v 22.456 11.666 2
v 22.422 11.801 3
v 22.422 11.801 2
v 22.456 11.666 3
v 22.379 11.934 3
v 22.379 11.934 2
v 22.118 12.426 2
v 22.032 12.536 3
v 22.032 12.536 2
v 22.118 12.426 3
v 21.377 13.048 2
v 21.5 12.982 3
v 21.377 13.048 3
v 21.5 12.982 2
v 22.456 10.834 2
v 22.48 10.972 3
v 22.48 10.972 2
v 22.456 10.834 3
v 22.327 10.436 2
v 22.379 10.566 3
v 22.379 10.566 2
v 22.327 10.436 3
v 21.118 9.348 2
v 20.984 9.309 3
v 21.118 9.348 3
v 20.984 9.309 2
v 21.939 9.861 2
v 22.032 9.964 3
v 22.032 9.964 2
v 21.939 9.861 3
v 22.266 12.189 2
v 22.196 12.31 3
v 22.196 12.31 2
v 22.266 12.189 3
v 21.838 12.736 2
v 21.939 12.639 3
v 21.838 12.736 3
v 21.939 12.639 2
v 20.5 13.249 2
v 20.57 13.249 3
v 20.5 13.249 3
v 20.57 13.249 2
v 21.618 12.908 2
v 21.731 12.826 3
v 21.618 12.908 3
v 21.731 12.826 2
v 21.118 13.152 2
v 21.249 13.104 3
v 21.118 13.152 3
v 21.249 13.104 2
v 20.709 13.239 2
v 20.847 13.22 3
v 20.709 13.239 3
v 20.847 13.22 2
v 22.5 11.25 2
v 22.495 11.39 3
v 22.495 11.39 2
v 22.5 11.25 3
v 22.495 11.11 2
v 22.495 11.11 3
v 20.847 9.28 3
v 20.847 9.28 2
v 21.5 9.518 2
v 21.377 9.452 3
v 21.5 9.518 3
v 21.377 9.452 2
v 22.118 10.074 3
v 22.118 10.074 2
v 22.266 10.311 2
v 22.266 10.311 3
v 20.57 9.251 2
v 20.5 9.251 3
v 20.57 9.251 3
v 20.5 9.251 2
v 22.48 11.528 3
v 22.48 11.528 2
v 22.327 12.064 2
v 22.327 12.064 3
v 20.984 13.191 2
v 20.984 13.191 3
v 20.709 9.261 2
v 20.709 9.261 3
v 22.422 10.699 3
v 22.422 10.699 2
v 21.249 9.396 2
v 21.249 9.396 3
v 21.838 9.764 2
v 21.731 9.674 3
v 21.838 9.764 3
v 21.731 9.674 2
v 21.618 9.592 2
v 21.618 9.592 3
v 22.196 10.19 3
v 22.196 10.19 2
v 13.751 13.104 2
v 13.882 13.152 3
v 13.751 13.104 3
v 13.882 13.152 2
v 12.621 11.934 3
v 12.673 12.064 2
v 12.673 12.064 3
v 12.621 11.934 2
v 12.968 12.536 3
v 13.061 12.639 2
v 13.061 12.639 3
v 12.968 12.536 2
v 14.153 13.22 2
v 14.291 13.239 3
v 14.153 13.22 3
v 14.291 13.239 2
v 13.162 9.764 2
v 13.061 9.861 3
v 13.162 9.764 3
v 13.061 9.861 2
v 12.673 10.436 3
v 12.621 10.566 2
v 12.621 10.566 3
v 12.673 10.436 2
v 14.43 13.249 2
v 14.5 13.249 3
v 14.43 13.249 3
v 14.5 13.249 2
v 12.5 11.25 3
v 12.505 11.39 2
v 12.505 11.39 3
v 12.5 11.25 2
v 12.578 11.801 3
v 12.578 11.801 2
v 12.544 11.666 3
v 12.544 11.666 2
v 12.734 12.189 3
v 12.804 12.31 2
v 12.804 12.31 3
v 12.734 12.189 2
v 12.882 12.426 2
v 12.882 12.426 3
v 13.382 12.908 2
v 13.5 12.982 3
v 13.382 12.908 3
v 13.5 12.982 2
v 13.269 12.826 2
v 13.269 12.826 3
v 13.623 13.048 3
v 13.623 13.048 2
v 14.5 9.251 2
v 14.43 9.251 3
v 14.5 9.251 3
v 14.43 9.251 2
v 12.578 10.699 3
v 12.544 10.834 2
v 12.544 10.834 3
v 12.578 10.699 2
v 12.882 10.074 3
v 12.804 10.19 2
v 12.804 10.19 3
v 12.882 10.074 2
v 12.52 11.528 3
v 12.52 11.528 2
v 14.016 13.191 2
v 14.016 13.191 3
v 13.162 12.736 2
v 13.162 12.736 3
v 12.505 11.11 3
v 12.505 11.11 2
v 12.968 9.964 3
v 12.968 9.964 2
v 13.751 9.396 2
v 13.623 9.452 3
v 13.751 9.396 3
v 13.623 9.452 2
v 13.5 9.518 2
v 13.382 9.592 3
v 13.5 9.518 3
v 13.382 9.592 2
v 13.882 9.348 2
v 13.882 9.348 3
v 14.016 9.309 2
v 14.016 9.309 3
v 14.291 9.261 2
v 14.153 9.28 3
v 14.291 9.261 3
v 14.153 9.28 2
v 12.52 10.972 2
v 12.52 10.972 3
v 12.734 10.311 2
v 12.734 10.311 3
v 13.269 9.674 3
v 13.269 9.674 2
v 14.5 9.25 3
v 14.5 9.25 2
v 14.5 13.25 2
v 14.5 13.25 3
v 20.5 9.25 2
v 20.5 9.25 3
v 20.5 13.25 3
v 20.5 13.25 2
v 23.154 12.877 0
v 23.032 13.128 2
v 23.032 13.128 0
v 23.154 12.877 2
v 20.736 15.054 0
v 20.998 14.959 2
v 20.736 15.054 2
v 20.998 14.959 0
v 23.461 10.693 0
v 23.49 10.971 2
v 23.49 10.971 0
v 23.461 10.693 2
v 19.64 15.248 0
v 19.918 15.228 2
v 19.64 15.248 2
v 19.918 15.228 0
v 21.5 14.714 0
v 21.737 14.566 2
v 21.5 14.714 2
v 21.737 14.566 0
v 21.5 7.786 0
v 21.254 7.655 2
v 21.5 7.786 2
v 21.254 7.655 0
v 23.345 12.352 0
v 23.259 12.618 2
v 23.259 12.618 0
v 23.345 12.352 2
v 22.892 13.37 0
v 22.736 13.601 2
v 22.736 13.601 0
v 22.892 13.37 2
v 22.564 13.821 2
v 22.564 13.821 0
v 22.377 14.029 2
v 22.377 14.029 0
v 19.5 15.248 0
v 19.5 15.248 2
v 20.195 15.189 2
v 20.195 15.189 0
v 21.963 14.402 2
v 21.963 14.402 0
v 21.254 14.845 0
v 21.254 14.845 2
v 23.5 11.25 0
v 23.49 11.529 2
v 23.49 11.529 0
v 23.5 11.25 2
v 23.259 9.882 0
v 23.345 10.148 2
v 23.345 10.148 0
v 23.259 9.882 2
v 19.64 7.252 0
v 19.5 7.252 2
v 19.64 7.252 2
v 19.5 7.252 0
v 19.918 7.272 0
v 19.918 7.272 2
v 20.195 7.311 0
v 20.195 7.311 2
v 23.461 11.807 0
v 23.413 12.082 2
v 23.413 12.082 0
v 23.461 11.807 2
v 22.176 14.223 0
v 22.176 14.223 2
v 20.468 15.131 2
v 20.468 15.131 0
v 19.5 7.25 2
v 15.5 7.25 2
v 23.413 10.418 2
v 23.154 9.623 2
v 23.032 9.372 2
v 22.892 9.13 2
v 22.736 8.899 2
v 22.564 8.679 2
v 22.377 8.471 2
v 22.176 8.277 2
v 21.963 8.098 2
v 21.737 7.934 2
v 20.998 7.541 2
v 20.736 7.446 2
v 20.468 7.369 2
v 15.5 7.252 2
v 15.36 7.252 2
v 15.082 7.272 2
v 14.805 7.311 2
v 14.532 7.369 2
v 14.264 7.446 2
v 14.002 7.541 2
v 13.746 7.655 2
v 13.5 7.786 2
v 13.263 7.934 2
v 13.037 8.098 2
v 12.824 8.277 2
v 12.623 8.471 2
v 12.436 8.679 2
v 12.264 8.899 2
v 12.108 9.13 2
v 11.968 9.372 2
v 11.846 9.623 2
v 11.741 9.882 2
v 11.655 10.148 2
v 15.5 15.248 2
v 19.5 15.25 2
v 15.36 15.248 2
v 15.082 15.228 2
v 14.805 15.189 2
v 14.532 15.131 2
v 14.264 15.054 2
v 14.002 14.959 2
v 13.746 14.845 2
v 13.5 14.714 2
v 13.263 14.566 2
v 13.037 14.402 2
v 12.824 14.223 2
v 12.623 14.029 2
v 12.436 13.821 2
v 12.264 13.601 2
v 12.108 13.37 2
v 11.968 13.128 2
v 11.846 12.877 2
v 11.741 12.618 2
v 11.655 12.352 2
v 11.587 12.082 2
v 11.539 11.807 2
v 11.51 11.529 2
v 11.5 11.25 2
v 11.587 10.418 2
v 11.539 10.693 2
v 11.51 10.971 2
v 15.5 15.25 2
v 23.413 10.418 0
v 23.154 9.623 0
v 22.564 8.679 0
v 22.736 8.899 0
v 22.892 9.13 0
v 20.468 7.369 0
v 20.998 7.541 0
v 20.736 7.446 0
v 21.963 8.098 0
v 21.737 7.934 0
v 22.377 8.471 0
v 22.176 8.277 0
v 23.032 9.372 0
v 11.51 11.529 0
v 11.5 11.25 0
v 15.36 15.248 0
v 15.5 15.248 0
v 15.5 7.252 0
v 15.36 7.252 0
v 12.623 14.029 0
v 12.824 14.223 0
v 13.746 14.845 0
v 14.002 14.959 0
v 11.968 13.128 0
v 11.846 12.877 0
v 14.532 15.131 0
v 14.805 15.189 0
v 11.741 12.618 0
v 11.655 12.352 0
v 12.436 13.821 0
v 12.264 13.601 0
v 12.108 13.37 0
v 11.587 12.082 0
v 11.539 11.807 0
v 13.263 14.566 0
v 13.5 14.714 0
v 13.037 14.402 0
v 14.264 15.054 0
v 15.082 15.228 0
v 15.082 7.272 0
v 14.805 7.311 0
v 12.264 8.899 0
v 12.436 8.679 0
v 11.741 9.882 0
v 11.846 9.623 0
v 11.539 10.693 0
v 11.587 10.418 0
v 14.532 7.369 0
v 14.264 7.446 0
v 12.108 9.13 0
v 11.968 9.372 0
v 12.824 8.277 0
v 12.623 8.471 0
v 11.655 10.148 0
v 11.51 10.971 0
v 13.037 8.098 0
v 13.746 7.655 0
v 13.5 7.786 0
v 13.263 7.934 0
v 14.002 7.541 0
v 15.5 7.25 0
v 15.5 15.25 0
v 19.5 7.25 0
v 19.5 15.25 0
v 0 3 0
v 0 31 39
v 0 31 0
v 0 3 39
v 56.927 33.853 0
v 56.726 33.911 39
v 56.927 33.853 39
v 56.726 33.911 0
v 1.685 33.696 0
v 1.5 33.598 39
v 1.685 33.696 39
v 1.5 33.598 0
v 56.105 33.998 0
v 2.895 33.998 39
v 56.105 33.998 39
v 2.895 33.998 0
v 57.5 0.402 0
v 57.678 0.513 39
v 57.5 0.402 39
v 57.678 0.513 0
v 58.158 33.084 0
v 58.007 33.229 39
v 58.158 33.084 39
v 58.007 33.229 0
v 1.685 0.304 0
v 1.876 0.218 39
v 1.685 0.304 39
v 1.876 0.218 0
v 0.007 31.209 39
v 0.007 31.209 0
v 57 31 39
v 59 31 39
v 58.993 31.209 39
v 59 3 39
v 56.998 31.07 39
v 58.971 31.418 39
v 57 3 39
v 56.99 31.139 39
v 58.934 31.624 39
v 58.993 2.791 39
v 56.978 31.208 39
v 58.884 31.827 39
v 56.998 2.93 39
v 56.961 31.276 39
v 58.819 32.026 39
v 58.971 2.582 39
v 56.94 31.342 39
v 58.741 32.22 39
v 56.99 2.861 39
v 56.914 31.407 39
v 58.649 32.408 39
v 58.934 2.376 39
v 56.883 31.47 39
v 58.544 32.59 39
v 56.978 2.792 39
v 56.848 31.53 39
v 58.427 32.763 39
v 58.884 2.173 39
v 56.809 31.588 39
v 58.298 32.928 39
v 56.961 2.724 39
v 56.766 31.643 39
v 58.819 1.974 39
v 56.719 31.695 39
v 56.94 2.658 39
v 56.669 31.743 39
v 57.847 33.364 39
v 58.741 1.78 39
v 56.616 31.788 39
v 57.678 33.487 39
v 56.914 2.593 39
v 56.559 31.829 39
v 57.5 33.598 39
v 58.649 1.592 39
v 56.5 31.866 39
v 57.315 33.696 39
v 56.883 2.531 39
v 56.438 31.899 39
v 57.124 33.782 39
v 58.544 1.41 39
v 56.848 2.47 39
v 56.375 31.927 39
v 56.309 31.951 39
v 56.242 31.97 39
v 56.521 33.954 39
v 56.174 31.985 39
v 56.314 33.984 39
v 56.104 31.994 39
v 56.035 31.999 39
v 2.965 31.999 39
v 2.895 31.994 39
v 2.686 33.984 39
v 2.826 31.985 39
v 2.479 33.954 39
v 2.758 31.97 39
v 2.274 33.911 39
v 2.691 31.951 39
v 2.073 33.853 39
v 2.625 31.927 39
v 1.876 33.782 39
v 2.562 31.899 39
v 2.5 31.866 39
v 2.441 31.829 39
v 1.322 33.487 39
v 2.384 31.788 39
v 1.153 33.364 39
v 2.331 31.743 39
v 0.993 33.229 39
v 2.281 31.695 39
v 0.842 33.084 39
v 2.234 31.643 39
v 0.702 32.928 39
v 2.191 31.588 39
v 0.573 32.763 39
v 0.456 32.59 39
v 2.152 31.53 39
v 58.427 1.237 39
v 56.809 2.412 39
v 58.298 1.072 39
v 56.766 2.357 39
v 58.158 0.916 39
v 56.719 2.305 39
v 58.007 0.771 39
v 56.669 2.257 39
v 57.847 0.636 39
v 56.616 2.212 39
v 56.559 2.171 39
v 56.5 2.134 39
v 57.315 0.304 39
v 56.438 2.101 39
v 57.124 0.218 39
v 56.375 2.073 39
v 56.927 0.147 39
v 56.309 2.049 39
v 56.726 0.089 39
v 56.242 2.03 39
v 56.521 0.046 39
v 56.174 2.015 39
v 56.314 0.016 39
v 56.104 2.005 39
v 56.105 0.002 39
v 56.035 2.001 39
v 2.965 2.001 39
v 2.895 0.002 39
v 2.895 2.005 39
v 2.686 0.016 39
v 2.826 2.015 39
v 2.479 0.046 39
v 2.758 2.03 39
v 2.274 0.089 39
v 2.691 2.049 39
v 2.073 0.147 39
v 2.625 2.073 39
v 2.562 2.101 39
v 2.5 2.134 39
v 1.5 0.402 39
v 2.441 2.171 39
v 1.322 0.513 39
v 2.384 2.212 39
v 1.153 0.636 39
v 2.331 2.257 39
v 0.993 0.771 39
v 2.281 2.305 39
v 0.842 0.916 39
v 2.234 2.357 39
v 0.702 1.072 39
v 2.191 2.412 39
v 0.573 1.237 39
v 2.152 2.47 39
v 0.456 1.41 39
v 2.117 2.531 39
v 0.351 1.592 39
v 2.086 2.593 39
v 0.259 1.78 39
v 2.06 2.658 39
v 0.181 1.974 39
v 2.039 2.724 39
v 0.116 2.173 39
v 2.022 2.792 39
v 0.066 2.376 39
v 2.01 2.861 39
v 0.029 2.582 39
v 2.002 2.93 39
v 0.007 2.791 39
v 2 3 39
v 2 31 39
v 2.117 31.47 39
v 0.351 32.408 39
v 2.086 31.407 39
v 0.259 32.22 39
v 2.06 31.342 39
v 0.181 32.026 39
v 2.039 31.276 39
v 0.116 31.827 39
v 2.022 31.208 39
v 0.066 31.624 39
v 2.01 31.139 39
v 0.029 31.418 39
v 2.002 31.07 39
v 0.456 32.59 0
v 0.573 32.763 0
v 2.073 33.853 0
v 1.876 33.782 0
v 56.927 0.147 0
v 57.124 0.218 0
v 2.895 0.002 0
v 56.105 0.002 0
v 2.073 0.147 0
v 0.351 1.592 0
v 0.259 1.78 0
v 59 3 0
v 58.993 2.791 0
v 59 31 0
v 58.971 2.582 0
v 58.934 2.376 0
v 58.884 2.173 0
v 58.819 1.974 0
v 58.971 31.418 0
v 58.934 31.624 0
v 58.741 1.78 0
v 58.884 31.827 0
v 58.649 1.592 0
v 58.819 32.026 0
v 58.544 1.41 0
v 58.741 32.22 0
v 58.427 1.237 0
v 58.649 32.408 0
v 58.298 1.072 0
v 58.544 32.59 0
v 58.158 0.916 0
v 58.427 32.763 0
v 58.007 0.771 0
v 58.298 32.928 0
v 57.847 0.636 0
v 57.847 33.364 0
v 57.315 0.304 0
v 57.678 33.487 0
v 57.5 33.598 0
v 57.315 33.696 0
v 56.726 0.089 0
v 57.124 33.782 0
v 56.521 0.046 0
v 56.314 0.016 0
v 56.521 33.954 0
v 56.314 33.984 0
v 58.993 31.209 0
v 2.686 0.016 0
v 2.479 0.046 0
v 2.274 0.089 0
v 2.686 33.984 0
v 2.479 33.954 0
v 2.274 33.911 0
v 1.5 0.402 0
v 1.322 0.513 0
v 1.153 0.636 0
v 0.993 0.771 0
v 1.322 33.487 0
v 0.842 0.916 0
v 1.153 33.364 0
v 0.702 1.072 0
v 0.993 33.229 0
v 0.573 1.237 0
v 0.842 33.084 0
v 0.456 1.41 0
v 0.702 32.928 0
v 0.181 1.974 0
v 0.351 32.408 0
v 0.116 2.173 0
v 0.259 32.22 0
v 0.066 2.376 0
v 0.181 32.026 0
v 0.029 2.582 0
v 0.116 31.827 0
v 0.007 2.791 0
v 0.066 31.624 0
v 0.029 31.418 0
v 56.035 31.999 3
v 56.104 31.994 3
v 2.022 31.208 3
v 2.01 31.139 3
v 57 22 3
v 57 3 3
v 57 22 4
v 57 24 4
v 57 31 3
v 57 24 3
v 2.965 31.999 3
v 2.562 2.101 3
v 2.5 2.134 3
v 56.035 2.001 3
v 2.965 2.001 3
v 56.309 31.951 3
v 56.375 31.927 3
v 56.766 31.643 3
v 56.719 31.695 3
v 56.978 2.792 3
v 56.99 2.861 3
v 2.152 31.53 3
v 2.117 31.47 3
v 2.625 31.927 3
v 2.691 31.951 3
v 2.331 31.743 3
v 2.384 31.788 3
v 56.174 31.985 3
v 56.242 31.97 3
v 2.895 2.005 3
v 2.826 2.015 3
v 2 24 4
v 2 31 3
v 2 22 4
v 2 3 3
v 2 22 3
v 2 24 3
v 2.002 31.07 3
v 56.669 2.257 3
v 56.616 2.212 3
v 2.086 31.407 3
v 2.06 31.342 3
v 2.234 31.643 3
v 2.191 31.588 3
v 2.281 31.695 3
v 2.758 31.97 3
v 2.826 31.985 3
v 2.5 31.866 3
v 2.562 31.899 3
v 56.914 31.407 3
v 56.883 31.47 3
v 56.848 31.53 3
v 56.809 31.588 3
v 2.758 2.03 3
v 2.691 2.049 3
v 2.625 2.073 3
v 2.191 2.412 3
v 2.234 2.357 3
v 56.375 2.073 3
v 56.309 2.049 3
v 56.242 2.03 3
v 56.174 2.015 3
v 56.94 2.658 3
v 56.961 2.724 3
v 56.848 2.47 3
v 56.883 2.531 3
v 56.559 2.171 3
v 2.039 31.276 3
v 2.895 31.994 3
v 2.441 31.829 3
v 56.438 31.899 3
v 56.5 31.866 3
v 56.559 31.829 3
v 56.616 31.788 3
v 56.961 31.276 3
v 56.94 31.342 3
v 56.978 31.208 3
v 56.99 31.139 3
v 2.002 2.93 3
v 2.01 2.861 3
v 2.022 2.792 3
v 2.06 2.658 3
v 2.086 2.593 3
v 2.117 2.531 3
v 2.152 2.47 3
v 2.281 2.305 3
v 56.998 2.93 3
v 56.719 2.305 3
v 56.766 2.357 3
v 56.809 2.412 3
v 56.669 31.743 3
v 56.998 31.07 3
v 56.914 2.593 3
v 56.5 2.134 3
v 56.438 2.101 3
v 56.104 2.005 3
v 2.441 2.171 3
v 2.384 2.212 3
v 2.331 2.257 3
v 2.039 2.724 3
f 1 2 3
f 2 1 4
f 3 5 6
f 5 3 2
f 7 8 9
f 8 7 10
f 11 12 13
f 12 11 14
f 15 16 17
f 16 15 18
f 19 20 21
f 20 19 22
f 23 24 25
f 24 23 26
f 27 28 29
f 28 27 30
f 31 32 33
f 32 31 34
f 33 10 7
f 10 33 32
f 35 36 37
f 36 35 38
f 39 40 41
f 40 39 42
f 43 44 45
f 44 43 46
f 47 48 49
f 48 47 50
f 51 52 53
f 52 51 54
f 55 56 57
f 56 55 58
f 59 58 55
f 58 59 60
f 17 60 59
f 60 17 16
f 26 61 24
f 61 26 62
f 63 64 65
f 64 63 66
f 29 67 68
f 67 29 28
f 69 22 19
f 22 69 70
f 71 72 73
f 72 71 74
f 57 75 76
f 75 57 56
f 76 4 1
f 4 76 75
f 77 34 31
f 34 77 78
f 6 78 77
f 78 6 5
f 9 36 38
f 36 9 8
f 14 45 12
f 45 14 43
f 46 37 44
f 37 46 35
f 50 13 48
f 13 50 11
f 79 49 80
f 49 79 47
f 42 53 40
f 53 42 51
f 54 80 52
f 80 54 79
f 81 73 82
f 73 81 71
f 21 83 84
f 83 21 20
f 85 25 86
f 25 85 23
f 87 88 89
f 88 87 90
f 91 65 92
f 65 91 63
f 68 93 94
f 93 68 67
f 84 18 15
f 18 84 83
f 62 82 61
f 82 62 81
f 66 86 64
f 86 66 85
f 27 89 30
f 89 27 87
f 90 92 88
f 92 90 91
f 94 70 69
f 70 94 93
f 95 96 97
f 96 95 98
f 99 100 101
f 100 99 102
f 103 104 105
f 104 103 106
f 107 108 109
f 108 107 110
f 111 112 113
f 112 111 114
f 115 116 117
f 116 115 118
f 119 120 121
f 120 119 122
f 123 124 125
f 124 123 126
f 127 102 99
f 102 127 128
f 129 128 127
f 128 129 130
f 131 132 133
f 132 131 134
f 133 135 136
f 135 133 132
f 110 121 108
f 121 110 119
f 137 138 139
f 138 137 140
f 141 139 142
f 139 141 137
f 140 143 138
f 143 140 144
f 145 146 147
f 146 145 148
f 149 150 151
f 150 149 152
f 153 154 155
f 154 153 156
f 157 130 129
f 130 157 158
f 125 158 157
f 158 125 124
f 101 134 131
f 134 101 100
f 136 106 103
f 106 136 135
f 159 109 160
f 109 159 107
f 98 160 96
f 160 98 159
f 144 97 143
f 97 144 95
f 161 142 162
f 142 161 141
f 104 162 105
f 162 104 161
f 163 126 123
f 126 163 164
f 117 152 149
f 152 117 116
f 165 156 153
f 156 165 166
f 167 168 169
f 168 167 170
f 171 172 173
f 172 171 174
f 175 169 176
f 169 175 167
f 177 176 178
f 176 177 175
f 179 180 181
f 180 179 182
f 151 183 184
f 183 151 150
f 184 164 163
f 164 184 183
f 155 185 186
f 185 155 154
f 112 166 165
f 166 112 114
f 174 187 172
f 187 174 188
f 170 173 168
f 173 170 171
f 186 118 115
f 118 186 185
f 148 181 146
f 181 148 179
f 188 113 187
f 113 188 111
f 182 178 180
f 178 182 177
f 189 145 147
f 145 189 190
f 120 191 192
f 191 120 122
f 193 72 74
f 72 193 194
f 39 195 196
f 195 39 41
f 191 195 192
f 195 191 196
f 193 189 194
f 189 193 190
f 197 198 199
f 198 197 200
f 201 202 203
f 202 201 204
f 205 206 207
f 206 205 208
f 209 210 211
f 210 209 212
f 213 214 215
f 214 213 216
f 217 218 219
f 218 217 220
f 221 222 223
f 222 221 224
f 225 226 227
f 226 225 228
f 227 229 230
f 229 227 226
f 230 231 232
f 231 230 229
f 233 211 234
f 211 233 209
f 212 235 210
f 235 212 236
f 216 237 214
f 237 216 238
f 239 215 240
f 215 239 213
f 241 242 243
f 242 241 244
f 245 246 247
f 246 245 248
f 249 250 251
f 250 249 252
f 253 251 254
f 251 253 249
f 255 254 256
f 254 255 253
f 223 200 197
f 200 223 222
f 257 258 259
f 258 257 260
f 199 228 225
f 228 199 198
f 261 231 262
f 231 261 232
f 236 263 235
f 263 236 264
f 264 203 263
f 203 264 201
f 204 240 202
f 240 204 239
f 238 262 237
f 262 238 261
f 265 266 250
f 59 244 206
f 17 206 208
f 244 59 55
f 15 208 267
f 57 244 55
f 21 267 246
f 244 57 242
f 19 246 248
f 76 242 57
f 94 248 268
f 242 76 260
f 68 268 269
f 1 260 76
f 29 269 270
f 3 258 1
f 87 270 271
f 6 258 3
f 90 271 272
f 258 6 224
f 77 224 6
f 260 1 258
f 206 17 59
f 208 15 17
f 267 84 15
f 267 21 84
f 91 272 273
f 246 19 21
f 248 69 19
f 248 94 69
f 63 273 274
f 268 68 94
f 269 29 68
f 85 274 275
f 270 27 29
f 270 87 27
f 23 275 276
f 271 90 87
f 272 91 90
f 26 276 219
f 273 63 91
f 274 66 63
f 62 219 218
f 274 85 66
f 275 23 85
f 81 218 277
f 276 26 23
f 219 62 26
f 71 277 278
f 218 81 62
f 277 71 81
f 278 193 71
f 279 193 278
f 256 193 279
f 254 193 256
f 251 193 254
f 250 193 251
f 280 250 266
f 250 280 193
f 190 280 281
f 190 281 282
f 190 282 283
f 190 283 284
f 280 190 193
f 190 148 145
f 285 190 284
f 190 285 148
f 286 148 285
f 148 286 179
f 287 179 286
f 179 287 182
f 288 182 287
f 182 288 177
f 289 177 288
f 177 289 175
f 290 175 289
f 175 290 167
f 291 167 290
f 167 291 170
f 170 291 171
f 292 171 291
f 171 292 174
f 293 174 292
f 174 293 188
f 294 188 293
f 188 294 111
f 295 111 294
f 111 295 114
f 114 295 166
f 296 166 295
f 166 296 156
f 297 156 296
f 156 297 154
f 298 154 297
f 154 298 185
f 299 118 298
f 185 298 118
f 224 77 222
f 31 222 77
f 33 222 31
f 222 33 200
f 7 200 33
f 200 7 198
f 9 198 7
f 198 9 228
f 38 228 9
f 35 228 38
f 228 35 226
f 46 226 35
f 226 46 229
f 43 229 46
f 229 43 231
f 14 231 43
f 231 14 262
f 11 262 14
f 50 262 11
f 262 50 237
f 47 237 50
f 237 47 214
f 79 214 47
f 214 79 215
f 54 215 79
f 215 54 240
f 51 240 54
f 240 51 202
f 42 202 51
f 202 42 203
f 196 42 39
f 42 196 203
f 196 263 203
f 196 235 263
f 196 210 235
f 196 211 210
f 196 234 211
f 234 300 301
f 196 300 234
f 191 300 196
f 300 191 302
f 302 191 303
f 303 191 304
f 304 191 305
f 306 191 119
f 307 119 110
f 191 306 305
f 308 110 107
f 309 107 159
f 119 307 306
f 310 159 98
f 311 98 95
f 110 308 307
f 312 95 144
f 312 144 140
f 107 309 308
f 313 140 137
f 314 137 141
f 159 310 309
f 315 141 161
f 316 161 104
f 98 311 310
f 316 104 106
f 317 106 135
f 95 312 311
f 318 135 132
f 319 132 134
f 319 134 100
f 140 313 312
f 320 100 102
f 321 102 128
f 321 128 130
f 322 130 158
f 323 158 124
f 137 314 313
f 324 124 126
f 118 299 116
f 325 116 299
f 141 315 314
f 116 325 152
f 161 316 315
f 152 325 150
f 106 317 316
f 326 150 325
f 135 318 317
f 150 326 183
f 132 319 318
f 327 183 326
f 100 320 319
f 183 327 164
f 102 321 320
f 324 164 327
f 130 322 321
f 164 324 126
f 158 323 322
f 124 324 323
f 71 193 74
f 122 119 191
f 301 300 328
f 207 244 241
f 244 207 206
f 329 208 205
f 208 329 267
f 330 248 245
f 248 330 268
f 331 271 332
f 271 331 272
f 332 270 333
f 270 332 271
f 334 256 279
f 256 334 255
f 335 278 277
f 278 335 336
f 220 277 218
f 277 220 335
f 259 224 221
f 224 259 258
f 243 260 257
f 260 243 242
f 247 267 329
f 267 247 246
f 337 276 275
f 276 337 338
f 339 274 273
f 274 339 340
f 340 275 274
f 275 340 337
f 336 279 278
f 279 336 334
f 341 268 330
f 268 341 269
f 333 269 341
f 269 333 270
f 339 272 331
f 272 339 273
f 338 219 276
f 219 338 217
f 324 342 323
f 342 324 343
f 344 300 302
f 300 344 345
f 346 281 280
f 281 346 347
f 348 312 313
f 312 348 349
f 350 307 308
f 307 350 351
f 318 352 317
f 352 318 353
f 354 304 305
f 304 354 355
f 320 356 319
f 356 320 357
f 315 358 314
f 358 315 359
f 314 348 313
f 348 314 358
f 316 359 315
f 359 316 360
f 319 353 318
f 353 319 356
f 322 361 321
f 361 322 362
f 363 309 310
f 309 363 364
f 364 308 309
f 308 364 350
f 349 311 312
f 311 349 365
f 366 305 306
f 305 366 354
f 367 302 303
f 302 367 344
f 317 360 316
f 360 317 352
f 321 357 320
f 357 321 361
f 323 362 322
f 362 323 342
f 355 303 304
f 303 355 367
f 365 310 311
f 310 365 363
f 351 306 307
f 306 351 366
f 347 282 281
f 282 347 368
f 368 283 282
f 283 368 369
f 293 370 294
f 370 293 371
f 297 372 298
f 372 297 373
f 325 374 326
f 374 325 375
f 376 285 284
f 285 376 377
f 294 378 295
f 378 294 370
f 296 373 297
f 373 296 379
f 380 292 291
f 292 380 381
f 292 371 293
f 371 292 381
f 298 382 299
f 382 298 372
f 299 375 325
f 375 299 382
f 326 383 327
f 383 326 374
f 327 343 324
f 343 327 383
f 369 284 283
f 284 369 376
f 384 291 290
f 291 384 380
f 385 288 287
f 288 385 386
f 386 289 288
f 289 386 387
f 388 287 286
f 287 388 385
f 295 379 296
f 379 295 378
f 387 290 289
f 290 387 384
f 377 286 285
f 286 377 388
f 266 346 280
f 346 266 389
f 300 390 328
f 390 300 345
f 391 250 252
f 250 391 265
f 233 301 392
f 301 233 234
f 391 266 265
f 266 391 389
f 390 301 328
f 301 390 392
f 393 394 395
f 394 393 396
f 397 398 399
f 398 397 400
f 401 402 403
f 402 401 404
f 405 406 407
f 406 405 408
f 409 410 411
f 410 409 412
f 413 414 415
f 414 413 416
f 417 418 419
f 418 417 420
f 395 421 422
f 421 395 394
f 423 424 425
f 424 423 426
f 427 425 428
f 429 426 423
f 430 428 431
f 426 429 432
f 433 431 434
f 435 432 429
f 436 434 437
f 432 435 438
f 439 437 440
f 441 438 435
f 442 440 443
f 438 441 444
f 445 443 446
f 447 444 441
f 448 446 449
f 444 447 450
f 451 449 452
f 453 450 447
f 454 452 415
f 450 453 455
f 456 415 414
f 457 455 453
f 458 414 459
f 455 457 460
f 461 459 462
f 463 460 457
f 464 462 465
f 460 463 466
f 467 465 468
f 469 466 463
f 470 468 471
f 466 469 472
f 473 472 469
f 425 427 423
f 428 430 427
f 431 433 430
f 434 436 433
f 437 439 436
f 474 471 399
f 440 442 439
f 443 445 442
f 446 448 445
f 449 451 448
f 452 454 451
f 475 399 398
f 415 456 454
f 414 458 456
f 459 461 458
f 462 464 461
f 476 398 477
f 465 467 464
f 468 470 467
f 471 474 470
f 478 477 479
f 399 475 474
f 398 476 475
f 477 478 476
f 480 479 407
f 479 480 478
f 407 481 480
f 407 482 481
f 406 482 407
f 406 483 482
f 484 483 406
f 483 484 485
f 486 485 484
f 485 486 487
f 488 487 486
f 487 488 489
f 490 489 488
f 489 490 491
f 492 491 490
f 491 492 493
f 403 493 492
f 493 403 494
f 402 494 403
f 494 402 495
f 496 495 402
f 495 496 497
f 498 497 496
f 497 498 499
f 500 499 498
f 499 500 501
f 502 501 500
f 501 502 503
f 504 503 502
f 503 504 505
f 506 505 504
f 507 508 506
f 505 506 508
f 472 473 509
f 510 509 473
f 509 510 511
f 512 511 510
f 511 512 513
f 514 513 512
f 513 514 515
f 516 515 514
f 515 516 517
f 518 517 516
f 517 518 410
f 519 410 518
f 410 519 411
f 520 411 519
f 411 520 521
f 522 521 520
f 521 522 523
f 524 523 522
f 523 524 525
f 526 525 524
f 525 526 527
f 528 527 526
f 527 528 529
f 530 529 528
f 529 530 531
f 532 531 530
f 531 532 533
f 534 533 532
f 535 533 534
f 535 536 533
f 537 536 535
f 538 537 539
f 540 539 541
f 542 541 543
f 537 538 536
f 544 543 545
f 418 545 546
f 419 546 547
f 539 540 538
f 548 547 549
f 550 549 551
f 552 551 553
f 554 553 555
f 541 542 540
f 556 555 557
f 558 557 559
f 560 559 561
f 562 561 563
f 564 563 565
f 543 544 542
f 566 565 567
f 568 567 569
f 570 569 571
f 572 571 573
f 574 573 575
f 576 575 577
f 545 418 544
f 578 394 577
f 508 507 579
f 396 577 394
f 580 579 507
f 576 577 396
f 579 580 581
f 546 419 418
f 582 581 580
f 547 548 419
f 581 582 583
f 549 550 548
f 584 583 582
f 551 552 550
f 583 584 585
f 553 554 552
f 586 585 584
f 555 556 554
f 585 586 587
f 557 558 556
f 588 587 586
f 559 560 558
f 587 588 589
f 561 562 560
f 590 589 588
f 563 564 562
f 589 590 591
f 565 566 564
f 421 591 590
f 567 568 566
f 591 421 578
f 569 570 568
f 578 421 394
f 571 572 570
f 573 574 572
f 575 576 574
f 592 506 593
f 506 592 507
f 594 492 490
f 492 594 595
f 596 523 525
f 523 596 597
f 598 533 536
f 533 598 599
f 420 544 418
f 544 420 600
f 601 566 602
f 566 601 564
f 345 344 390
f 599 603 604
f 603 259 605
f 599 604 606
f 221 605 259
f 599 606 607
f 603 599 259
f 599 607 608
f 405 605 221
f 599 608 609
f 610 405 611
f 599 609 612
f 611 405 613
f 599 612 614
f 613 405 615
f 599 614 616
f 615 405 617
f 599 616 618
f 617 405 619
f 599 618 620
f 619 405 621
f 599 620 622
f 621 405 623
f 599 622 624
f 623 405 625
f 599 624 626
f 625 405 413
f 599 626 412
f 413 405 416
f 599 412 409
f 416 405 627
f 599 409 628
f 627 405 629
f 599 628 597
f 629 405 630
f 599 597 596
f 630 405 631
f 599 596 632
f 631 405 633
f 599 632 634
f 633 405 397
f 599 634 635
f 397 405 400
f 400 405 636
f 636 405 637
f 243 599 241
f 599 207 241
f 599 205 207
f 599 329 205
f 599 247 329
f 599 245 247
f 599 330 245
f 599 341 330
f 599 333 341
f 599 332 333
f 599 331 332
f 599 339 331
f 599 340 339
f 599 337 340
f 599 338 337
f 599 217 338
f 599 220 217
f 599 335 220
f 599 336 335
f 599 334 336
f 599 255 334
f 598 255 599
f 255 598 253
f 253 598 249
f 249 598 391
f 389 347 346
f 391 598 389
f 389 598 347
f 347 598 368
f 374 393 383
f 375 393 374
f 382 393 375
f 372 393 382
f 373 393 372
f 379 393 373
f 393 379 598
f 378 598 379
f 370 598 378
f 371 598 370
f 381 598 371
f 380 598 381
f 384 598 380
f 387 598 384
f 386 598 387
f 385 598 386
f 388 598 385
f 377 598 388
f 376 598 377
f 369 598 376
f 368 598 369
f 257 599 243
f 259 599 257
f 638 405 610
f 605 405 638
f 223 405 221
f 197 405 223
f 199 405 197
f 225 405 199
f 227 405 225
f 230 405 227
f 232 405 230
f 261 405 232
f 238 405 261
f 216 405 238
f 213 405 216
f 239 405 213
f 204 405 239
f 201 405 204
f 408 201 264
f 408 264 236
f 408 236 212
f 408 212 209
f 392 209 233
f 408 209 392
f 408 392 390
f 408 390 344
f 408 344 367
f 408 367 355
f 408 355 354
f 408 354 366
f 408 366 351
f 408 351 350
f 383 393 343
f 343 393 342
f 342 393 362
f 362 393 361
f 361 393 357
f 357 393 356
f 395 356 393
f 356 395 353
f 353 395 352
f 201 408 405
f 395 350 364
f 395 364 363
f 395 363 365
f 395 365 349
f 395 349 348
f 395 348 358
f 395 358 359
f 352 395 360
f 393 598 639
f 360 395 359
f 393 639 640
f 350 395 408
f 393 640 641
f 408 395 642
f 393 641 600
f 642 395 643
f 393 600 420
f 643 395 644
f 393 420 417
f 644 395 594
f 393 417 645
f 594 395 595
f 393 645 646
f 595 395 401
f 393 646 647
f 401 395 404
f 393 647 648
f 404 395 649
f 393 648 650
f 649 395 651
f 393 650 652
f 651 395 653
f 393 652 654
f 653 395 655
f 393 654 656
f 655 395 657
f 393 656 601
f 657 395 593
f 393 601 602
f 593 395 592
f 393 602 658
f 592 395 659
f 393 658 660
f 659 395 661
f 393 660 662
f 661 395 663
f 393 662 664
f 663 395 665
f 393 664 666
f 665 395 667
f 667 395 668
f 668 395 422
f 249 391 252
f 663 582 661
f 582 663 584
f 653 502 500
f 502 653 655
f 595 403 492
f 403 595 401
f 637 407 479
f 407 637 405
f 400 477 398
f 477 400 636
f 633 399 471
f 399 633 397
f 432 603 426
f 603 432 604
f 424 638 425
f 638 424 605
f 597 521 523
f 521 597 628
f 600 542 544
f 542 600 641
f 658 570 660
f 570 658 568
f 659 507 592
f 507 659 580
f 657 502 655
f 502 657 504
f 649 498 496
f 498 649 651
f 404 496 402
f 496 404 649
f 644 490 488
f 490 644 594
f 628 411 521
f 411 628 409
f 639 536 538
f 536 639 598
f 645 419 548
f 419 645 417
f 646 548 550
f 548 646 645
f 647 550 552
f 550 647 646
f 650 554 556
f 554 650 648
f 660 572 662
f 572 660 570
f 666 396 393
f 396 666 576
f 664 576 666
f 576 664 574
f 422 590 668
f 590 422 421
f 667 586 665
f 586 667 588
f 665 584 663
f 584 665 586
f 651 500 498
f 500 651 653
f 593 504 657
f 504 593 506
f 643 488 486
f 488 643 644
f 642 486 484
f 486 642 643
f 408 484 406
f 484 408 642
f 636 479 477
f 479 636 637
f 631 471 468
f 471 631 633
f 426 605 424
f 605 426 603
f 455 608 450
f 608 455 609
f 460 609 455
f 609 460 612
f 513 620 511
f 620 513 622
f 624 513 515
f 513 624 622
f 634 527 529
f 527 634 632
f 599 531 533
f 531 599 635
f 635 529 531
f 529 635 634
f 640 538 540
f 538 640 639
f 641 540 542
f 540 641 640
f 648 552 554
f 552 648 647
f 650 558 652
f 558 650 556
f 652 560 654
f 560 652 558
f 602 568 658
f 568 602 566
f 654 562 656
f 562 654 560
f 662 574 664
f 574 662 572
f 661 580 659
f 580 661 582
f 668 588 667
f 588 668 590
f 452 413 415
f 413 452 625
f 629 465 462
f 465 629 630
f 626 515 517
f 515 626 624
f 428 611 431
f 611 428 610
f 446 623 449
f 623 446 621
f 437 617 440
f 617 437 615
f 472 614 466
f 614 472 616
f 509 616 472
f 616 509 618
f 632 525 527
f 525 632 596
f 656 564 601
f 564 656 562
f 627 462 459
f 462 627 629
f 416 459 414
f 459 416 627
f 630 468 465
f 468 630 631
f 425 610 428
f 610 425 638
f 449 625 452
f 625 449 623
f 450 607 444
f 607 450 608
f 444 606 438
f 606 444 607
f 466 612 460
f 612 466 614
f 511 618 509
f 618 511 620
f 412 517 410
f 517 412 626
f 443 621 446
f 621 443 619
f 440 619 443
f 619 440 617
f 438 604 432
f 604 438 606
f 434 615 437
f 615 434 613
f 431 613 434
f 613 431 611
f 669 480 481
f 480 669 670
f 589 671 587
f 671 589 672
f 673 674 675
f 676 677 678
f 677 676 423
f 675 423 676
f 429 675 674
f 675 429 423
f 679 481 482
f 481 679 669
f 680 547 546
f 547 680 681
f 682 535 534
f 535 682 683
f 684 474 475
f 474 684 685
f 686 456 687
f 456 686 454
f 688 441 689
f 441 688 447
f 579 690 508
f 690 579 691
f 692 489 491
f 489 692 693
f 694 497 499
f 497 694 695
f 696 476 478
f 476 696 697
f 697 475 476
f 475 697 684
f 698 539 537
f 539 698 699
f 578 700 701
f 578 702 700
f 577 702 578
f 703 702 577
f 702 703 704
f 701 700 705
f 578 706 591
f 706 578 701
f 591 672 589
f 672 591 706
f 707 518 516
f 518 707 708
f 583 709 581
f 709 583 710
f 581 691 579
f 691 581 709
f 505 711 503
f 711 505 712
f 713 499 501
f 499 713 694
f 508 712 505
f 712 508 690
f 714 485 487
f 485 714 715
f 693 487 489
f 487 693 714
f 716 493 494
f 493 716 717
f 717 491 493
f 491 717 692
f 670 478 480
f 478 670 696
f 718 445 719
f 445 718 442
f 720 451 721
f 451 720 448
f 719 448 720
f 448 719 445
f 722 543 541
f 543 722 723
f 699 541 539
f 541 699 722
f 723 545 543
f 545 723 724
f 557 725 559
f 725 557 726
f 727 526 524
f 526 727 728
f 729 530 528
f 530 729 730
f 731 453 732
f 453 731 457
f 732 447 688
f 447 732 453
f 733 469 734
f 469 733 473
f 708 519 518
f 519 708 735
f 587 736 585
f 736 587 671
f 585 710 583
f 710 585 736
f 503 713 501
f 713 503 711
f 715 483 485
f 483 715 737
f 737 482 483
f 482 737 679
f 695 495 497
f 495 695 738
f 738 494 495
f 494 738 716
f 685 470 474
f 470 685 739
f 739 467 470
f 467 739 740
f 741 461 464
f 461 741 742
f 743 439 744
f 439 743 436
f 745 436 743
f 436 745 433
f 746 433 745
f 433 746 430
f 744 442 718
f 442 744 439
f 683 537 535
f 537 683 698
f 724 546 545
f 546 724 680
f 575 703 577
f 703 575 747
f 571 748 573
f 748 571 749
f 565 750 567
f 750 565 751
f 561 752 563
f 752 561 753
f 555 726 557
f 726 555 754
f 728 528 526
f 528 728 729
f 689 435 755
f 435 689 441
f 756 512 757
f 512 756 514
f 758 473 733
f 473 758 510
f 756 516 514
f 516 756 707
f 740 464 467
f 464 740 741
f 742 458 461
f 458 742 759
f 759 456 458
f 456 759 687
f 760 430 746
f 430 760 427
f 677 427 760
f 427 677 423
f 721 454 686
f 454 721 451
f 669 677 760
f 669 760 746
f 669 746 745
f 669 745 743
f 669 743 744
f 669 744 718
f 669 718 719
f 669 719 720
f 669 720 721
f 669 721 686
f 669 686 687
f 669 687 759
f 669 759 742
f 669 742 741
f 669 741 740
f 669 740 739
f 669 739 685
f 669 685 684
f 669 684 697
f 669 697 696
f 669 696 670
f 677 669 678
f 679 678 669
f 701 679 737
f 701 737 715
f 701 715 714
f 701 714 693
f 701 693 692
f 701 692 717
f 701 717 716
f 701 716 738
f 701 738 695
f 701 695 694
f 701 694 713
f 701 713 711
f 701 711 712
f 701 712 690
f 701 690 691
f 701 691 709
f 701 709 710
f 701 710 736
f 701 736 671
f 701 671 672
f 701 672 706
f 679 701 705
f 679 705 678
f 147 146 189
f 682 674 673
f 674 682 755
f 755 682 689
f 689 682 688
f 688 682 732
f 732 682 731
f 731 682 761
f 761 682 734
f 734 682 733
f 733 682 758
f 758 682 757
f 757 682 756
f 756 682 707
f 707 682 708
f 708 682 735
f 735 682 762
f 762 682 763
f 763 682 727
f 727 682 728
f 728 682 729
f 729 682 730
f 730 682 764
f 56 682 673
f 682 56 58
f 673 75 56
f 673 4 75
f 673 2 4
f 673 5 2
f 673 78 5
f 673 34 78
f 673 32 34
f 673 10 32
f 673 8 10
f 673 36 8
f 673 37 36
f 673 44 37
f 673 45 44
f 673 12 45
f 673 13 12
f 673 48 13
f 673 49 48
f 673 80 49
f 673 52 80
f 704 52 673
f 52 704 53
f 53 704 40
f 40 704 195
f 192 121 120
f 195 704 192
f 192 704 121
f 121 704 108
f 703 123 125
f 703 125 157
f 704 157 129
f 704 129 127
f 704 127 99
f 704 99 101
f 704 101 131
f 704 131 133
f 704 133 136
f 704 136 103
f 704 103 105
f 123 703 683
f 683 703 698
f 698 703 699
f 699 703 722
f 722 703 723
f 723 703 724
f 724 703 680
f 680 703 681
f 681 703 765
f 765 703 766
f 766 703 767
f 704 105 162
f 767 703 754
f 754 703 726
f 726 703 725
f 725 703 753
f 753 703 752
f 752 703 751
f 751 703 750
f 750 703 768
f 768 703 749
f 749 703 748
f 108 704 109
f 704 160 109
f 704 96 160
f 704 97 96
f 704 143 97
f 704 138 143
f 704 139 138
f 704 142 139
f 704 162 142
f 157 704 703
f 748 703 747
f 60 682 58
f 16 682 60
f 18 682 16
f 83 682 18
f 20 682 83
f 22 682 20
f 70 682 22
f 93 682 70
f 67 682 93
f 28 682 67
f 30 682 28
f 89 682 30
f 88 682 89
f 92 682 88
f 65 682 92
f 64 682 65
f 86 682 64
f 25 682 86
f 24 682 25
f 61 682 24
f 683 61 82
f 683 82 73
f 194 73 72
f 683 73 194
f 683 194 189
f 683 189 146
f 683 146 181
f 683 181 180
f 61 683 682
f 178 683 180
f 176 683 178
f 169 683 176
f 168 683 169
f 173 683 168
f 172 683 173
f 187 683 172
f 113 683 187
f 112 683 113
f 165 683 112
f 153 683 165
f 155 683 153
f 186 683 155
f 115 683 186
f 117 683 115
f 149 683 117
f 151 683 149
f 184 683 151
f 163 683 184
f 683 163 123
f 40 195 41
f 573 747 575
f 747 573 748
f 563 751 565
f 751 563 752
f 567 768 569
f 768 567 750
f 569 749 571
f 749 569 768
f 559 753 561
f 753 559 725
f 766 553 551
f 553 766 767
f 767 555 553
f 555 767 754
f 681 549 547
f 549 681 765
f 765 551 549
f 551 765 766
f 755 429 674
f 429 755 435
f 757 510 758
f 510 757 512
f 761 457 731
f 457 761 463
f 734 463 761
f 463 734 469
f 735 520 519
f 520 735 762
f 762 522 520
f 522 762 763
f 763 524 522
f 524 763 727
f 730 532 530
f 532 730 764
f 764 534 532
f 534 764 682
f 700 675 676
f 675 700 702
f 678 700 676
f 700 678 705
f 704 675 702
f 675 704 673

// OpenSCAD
// Simple Cover for the Iridium Mini Beacon with USB opening

$fn=90; // fragments
wall = 2.0; // wall thickness
end_wall = 3.0; // end wall thickness
internal_width = 55.0; // internal width (X) of the cover
internal_depth = 30.0; // internal depth (Y) of the cover
internal_height = 35.0; // internal height (Z) of the cover
lid_insert = 1.0; // extra height for the lid insert

battery_support_height = 1.0; // Height (Z) of the battery support above the floor
battery_support_depth = 2.0; // Depth (Y) of the battery support
battery_support_offset = 5.0; // Y offset of the battery support

internal_corner_radius = 1.0; // radius of the internal corner cylinder

usb_r = 2.0; // radius of the opening for the USB connector
usb_width = 10.0; // total width of the opening for the USB
usb_height = 1.0; // thickness of the opening for the USB connector
usb_recess_r = 4.0; // radius of the recess for the USB connector body
usb_recess_width = 12.0; // total width of the recess for the USB connector body
usb_x_offset = -12.0; // X offset of the USB connector
usb_y_offset = 5.75; // y offset of the USB connector

height = internal_height + end_wall + lid_insert; // cover external height (Z)
width = internal_width + (2 * wall); // cover external width (X)
depth = internal_depth + (2 * wall); // cover external depth (Y)

external_corner_radius = internal_corner_radius + wall; // external corner radius

module cover()
{
    translate([external_corner_radius, external_corner_radius, 0])
        minkowski() {
            cube([(width - (2 * external_corner_radius)), (depth - (2 * external_corner_radius)), (height / 2)]);
            cylinder(h=(height / 2), r=external_corner_radius);
        }
}

module void()
// Void will be higher than required to avoid zero thickness skin across opening
{
    translate([external_corner_radius, external_corner_radius, end_wall])
        minkowski() {
            cube([(internal_width - (2 * internal_corner_radius)), (internal_depth - (2 * internal_corner_radius)), (height / 2)]);
            cylinder(h=(height / 2), r=internal_corner_radius);
        }
}

module usb_opening_end_1()
// Cylinder is taller than it needs to be to avoid zero thickness skins
{
    translate([((usb_width / 2) - usb_r),0,usb_height]) {
        cylinder(h=end_wall,r=usb_r);
    }
}

module usb_opening_end_2()
// Cylinder is taller than it needs to be to avoid zero thickness skins
{
    translate([(0-((usb_width / 2) - usb_r)),0,usb_height]) {
        cylinder(h=end_wall,r=usb_r);
    }
}

module usb_opening_mid()
// Cube is taller than it needs to be to avoid zero thickness skins
{
    translate([(-0.5 * (usb_width - (2 * usb_r))), (-0.5 * (2 * usb_r)), usb_height]) {
        cube([(usb_width - (2 * usb_r)), (2 * usb_r), end_wall]);
    }
}

module usb_recess_end_1()
// Cylinder is taller than it needs to be to avoid zero thickness skins
{
    translate([((usb_recess_width / 2) - usb_recess_r), 0, (0 - usb_height)]) {
        cylinder(h=end_wall, r=usb_recess_r);
    }
}

module usb_recess_end_2()
// Cylinder is taller than it needs to be to avoid zero thickness skins
{
    translate([(0-((usb_recess_width / 2) - usb_recess_r)), 0, (0 - usb_height)]) {
        cylinder(h=end_wall, r=usb_recess_r);
    }
}

module usb_recess_mid()
// Cube is taller than it needs to be to avoid zero thickness skins
{
    translate([(-0.5 * (usb_recess_width - (2 * usb_recess_r))), (-0.5 * (2 * usb_recess_r)), (0 - usb_height)]) {
        cube([(usb_recess_width - (2 * usb_recess_r)), (2 * usb_recess_r), end_wall]);
    }
}

module usb()
{
    translate([((width / 2) + usb_x_offset), ((depth / 2) - usb_y_offset), 0]) {
        union() {
            usb_opening_end_1();
            usb_opening_end_2();
            usb_opening_mid();
            usb_recess_end_1();
            usb_recess_end_2();
            usb_recess_mid();
        }
    }
}

module battery_support()
{
    translate([0, ((depth/2) + battery_support_offset), 0]) {
        cube([width, battery_support_depth, (end_wall + battery_support_height)]);
    }
}

module finished_cover()
{
    union() {
        difference() {
            cover();
            void();
            usb();
        }
        battery_support();
    }
}

finished_cover();
